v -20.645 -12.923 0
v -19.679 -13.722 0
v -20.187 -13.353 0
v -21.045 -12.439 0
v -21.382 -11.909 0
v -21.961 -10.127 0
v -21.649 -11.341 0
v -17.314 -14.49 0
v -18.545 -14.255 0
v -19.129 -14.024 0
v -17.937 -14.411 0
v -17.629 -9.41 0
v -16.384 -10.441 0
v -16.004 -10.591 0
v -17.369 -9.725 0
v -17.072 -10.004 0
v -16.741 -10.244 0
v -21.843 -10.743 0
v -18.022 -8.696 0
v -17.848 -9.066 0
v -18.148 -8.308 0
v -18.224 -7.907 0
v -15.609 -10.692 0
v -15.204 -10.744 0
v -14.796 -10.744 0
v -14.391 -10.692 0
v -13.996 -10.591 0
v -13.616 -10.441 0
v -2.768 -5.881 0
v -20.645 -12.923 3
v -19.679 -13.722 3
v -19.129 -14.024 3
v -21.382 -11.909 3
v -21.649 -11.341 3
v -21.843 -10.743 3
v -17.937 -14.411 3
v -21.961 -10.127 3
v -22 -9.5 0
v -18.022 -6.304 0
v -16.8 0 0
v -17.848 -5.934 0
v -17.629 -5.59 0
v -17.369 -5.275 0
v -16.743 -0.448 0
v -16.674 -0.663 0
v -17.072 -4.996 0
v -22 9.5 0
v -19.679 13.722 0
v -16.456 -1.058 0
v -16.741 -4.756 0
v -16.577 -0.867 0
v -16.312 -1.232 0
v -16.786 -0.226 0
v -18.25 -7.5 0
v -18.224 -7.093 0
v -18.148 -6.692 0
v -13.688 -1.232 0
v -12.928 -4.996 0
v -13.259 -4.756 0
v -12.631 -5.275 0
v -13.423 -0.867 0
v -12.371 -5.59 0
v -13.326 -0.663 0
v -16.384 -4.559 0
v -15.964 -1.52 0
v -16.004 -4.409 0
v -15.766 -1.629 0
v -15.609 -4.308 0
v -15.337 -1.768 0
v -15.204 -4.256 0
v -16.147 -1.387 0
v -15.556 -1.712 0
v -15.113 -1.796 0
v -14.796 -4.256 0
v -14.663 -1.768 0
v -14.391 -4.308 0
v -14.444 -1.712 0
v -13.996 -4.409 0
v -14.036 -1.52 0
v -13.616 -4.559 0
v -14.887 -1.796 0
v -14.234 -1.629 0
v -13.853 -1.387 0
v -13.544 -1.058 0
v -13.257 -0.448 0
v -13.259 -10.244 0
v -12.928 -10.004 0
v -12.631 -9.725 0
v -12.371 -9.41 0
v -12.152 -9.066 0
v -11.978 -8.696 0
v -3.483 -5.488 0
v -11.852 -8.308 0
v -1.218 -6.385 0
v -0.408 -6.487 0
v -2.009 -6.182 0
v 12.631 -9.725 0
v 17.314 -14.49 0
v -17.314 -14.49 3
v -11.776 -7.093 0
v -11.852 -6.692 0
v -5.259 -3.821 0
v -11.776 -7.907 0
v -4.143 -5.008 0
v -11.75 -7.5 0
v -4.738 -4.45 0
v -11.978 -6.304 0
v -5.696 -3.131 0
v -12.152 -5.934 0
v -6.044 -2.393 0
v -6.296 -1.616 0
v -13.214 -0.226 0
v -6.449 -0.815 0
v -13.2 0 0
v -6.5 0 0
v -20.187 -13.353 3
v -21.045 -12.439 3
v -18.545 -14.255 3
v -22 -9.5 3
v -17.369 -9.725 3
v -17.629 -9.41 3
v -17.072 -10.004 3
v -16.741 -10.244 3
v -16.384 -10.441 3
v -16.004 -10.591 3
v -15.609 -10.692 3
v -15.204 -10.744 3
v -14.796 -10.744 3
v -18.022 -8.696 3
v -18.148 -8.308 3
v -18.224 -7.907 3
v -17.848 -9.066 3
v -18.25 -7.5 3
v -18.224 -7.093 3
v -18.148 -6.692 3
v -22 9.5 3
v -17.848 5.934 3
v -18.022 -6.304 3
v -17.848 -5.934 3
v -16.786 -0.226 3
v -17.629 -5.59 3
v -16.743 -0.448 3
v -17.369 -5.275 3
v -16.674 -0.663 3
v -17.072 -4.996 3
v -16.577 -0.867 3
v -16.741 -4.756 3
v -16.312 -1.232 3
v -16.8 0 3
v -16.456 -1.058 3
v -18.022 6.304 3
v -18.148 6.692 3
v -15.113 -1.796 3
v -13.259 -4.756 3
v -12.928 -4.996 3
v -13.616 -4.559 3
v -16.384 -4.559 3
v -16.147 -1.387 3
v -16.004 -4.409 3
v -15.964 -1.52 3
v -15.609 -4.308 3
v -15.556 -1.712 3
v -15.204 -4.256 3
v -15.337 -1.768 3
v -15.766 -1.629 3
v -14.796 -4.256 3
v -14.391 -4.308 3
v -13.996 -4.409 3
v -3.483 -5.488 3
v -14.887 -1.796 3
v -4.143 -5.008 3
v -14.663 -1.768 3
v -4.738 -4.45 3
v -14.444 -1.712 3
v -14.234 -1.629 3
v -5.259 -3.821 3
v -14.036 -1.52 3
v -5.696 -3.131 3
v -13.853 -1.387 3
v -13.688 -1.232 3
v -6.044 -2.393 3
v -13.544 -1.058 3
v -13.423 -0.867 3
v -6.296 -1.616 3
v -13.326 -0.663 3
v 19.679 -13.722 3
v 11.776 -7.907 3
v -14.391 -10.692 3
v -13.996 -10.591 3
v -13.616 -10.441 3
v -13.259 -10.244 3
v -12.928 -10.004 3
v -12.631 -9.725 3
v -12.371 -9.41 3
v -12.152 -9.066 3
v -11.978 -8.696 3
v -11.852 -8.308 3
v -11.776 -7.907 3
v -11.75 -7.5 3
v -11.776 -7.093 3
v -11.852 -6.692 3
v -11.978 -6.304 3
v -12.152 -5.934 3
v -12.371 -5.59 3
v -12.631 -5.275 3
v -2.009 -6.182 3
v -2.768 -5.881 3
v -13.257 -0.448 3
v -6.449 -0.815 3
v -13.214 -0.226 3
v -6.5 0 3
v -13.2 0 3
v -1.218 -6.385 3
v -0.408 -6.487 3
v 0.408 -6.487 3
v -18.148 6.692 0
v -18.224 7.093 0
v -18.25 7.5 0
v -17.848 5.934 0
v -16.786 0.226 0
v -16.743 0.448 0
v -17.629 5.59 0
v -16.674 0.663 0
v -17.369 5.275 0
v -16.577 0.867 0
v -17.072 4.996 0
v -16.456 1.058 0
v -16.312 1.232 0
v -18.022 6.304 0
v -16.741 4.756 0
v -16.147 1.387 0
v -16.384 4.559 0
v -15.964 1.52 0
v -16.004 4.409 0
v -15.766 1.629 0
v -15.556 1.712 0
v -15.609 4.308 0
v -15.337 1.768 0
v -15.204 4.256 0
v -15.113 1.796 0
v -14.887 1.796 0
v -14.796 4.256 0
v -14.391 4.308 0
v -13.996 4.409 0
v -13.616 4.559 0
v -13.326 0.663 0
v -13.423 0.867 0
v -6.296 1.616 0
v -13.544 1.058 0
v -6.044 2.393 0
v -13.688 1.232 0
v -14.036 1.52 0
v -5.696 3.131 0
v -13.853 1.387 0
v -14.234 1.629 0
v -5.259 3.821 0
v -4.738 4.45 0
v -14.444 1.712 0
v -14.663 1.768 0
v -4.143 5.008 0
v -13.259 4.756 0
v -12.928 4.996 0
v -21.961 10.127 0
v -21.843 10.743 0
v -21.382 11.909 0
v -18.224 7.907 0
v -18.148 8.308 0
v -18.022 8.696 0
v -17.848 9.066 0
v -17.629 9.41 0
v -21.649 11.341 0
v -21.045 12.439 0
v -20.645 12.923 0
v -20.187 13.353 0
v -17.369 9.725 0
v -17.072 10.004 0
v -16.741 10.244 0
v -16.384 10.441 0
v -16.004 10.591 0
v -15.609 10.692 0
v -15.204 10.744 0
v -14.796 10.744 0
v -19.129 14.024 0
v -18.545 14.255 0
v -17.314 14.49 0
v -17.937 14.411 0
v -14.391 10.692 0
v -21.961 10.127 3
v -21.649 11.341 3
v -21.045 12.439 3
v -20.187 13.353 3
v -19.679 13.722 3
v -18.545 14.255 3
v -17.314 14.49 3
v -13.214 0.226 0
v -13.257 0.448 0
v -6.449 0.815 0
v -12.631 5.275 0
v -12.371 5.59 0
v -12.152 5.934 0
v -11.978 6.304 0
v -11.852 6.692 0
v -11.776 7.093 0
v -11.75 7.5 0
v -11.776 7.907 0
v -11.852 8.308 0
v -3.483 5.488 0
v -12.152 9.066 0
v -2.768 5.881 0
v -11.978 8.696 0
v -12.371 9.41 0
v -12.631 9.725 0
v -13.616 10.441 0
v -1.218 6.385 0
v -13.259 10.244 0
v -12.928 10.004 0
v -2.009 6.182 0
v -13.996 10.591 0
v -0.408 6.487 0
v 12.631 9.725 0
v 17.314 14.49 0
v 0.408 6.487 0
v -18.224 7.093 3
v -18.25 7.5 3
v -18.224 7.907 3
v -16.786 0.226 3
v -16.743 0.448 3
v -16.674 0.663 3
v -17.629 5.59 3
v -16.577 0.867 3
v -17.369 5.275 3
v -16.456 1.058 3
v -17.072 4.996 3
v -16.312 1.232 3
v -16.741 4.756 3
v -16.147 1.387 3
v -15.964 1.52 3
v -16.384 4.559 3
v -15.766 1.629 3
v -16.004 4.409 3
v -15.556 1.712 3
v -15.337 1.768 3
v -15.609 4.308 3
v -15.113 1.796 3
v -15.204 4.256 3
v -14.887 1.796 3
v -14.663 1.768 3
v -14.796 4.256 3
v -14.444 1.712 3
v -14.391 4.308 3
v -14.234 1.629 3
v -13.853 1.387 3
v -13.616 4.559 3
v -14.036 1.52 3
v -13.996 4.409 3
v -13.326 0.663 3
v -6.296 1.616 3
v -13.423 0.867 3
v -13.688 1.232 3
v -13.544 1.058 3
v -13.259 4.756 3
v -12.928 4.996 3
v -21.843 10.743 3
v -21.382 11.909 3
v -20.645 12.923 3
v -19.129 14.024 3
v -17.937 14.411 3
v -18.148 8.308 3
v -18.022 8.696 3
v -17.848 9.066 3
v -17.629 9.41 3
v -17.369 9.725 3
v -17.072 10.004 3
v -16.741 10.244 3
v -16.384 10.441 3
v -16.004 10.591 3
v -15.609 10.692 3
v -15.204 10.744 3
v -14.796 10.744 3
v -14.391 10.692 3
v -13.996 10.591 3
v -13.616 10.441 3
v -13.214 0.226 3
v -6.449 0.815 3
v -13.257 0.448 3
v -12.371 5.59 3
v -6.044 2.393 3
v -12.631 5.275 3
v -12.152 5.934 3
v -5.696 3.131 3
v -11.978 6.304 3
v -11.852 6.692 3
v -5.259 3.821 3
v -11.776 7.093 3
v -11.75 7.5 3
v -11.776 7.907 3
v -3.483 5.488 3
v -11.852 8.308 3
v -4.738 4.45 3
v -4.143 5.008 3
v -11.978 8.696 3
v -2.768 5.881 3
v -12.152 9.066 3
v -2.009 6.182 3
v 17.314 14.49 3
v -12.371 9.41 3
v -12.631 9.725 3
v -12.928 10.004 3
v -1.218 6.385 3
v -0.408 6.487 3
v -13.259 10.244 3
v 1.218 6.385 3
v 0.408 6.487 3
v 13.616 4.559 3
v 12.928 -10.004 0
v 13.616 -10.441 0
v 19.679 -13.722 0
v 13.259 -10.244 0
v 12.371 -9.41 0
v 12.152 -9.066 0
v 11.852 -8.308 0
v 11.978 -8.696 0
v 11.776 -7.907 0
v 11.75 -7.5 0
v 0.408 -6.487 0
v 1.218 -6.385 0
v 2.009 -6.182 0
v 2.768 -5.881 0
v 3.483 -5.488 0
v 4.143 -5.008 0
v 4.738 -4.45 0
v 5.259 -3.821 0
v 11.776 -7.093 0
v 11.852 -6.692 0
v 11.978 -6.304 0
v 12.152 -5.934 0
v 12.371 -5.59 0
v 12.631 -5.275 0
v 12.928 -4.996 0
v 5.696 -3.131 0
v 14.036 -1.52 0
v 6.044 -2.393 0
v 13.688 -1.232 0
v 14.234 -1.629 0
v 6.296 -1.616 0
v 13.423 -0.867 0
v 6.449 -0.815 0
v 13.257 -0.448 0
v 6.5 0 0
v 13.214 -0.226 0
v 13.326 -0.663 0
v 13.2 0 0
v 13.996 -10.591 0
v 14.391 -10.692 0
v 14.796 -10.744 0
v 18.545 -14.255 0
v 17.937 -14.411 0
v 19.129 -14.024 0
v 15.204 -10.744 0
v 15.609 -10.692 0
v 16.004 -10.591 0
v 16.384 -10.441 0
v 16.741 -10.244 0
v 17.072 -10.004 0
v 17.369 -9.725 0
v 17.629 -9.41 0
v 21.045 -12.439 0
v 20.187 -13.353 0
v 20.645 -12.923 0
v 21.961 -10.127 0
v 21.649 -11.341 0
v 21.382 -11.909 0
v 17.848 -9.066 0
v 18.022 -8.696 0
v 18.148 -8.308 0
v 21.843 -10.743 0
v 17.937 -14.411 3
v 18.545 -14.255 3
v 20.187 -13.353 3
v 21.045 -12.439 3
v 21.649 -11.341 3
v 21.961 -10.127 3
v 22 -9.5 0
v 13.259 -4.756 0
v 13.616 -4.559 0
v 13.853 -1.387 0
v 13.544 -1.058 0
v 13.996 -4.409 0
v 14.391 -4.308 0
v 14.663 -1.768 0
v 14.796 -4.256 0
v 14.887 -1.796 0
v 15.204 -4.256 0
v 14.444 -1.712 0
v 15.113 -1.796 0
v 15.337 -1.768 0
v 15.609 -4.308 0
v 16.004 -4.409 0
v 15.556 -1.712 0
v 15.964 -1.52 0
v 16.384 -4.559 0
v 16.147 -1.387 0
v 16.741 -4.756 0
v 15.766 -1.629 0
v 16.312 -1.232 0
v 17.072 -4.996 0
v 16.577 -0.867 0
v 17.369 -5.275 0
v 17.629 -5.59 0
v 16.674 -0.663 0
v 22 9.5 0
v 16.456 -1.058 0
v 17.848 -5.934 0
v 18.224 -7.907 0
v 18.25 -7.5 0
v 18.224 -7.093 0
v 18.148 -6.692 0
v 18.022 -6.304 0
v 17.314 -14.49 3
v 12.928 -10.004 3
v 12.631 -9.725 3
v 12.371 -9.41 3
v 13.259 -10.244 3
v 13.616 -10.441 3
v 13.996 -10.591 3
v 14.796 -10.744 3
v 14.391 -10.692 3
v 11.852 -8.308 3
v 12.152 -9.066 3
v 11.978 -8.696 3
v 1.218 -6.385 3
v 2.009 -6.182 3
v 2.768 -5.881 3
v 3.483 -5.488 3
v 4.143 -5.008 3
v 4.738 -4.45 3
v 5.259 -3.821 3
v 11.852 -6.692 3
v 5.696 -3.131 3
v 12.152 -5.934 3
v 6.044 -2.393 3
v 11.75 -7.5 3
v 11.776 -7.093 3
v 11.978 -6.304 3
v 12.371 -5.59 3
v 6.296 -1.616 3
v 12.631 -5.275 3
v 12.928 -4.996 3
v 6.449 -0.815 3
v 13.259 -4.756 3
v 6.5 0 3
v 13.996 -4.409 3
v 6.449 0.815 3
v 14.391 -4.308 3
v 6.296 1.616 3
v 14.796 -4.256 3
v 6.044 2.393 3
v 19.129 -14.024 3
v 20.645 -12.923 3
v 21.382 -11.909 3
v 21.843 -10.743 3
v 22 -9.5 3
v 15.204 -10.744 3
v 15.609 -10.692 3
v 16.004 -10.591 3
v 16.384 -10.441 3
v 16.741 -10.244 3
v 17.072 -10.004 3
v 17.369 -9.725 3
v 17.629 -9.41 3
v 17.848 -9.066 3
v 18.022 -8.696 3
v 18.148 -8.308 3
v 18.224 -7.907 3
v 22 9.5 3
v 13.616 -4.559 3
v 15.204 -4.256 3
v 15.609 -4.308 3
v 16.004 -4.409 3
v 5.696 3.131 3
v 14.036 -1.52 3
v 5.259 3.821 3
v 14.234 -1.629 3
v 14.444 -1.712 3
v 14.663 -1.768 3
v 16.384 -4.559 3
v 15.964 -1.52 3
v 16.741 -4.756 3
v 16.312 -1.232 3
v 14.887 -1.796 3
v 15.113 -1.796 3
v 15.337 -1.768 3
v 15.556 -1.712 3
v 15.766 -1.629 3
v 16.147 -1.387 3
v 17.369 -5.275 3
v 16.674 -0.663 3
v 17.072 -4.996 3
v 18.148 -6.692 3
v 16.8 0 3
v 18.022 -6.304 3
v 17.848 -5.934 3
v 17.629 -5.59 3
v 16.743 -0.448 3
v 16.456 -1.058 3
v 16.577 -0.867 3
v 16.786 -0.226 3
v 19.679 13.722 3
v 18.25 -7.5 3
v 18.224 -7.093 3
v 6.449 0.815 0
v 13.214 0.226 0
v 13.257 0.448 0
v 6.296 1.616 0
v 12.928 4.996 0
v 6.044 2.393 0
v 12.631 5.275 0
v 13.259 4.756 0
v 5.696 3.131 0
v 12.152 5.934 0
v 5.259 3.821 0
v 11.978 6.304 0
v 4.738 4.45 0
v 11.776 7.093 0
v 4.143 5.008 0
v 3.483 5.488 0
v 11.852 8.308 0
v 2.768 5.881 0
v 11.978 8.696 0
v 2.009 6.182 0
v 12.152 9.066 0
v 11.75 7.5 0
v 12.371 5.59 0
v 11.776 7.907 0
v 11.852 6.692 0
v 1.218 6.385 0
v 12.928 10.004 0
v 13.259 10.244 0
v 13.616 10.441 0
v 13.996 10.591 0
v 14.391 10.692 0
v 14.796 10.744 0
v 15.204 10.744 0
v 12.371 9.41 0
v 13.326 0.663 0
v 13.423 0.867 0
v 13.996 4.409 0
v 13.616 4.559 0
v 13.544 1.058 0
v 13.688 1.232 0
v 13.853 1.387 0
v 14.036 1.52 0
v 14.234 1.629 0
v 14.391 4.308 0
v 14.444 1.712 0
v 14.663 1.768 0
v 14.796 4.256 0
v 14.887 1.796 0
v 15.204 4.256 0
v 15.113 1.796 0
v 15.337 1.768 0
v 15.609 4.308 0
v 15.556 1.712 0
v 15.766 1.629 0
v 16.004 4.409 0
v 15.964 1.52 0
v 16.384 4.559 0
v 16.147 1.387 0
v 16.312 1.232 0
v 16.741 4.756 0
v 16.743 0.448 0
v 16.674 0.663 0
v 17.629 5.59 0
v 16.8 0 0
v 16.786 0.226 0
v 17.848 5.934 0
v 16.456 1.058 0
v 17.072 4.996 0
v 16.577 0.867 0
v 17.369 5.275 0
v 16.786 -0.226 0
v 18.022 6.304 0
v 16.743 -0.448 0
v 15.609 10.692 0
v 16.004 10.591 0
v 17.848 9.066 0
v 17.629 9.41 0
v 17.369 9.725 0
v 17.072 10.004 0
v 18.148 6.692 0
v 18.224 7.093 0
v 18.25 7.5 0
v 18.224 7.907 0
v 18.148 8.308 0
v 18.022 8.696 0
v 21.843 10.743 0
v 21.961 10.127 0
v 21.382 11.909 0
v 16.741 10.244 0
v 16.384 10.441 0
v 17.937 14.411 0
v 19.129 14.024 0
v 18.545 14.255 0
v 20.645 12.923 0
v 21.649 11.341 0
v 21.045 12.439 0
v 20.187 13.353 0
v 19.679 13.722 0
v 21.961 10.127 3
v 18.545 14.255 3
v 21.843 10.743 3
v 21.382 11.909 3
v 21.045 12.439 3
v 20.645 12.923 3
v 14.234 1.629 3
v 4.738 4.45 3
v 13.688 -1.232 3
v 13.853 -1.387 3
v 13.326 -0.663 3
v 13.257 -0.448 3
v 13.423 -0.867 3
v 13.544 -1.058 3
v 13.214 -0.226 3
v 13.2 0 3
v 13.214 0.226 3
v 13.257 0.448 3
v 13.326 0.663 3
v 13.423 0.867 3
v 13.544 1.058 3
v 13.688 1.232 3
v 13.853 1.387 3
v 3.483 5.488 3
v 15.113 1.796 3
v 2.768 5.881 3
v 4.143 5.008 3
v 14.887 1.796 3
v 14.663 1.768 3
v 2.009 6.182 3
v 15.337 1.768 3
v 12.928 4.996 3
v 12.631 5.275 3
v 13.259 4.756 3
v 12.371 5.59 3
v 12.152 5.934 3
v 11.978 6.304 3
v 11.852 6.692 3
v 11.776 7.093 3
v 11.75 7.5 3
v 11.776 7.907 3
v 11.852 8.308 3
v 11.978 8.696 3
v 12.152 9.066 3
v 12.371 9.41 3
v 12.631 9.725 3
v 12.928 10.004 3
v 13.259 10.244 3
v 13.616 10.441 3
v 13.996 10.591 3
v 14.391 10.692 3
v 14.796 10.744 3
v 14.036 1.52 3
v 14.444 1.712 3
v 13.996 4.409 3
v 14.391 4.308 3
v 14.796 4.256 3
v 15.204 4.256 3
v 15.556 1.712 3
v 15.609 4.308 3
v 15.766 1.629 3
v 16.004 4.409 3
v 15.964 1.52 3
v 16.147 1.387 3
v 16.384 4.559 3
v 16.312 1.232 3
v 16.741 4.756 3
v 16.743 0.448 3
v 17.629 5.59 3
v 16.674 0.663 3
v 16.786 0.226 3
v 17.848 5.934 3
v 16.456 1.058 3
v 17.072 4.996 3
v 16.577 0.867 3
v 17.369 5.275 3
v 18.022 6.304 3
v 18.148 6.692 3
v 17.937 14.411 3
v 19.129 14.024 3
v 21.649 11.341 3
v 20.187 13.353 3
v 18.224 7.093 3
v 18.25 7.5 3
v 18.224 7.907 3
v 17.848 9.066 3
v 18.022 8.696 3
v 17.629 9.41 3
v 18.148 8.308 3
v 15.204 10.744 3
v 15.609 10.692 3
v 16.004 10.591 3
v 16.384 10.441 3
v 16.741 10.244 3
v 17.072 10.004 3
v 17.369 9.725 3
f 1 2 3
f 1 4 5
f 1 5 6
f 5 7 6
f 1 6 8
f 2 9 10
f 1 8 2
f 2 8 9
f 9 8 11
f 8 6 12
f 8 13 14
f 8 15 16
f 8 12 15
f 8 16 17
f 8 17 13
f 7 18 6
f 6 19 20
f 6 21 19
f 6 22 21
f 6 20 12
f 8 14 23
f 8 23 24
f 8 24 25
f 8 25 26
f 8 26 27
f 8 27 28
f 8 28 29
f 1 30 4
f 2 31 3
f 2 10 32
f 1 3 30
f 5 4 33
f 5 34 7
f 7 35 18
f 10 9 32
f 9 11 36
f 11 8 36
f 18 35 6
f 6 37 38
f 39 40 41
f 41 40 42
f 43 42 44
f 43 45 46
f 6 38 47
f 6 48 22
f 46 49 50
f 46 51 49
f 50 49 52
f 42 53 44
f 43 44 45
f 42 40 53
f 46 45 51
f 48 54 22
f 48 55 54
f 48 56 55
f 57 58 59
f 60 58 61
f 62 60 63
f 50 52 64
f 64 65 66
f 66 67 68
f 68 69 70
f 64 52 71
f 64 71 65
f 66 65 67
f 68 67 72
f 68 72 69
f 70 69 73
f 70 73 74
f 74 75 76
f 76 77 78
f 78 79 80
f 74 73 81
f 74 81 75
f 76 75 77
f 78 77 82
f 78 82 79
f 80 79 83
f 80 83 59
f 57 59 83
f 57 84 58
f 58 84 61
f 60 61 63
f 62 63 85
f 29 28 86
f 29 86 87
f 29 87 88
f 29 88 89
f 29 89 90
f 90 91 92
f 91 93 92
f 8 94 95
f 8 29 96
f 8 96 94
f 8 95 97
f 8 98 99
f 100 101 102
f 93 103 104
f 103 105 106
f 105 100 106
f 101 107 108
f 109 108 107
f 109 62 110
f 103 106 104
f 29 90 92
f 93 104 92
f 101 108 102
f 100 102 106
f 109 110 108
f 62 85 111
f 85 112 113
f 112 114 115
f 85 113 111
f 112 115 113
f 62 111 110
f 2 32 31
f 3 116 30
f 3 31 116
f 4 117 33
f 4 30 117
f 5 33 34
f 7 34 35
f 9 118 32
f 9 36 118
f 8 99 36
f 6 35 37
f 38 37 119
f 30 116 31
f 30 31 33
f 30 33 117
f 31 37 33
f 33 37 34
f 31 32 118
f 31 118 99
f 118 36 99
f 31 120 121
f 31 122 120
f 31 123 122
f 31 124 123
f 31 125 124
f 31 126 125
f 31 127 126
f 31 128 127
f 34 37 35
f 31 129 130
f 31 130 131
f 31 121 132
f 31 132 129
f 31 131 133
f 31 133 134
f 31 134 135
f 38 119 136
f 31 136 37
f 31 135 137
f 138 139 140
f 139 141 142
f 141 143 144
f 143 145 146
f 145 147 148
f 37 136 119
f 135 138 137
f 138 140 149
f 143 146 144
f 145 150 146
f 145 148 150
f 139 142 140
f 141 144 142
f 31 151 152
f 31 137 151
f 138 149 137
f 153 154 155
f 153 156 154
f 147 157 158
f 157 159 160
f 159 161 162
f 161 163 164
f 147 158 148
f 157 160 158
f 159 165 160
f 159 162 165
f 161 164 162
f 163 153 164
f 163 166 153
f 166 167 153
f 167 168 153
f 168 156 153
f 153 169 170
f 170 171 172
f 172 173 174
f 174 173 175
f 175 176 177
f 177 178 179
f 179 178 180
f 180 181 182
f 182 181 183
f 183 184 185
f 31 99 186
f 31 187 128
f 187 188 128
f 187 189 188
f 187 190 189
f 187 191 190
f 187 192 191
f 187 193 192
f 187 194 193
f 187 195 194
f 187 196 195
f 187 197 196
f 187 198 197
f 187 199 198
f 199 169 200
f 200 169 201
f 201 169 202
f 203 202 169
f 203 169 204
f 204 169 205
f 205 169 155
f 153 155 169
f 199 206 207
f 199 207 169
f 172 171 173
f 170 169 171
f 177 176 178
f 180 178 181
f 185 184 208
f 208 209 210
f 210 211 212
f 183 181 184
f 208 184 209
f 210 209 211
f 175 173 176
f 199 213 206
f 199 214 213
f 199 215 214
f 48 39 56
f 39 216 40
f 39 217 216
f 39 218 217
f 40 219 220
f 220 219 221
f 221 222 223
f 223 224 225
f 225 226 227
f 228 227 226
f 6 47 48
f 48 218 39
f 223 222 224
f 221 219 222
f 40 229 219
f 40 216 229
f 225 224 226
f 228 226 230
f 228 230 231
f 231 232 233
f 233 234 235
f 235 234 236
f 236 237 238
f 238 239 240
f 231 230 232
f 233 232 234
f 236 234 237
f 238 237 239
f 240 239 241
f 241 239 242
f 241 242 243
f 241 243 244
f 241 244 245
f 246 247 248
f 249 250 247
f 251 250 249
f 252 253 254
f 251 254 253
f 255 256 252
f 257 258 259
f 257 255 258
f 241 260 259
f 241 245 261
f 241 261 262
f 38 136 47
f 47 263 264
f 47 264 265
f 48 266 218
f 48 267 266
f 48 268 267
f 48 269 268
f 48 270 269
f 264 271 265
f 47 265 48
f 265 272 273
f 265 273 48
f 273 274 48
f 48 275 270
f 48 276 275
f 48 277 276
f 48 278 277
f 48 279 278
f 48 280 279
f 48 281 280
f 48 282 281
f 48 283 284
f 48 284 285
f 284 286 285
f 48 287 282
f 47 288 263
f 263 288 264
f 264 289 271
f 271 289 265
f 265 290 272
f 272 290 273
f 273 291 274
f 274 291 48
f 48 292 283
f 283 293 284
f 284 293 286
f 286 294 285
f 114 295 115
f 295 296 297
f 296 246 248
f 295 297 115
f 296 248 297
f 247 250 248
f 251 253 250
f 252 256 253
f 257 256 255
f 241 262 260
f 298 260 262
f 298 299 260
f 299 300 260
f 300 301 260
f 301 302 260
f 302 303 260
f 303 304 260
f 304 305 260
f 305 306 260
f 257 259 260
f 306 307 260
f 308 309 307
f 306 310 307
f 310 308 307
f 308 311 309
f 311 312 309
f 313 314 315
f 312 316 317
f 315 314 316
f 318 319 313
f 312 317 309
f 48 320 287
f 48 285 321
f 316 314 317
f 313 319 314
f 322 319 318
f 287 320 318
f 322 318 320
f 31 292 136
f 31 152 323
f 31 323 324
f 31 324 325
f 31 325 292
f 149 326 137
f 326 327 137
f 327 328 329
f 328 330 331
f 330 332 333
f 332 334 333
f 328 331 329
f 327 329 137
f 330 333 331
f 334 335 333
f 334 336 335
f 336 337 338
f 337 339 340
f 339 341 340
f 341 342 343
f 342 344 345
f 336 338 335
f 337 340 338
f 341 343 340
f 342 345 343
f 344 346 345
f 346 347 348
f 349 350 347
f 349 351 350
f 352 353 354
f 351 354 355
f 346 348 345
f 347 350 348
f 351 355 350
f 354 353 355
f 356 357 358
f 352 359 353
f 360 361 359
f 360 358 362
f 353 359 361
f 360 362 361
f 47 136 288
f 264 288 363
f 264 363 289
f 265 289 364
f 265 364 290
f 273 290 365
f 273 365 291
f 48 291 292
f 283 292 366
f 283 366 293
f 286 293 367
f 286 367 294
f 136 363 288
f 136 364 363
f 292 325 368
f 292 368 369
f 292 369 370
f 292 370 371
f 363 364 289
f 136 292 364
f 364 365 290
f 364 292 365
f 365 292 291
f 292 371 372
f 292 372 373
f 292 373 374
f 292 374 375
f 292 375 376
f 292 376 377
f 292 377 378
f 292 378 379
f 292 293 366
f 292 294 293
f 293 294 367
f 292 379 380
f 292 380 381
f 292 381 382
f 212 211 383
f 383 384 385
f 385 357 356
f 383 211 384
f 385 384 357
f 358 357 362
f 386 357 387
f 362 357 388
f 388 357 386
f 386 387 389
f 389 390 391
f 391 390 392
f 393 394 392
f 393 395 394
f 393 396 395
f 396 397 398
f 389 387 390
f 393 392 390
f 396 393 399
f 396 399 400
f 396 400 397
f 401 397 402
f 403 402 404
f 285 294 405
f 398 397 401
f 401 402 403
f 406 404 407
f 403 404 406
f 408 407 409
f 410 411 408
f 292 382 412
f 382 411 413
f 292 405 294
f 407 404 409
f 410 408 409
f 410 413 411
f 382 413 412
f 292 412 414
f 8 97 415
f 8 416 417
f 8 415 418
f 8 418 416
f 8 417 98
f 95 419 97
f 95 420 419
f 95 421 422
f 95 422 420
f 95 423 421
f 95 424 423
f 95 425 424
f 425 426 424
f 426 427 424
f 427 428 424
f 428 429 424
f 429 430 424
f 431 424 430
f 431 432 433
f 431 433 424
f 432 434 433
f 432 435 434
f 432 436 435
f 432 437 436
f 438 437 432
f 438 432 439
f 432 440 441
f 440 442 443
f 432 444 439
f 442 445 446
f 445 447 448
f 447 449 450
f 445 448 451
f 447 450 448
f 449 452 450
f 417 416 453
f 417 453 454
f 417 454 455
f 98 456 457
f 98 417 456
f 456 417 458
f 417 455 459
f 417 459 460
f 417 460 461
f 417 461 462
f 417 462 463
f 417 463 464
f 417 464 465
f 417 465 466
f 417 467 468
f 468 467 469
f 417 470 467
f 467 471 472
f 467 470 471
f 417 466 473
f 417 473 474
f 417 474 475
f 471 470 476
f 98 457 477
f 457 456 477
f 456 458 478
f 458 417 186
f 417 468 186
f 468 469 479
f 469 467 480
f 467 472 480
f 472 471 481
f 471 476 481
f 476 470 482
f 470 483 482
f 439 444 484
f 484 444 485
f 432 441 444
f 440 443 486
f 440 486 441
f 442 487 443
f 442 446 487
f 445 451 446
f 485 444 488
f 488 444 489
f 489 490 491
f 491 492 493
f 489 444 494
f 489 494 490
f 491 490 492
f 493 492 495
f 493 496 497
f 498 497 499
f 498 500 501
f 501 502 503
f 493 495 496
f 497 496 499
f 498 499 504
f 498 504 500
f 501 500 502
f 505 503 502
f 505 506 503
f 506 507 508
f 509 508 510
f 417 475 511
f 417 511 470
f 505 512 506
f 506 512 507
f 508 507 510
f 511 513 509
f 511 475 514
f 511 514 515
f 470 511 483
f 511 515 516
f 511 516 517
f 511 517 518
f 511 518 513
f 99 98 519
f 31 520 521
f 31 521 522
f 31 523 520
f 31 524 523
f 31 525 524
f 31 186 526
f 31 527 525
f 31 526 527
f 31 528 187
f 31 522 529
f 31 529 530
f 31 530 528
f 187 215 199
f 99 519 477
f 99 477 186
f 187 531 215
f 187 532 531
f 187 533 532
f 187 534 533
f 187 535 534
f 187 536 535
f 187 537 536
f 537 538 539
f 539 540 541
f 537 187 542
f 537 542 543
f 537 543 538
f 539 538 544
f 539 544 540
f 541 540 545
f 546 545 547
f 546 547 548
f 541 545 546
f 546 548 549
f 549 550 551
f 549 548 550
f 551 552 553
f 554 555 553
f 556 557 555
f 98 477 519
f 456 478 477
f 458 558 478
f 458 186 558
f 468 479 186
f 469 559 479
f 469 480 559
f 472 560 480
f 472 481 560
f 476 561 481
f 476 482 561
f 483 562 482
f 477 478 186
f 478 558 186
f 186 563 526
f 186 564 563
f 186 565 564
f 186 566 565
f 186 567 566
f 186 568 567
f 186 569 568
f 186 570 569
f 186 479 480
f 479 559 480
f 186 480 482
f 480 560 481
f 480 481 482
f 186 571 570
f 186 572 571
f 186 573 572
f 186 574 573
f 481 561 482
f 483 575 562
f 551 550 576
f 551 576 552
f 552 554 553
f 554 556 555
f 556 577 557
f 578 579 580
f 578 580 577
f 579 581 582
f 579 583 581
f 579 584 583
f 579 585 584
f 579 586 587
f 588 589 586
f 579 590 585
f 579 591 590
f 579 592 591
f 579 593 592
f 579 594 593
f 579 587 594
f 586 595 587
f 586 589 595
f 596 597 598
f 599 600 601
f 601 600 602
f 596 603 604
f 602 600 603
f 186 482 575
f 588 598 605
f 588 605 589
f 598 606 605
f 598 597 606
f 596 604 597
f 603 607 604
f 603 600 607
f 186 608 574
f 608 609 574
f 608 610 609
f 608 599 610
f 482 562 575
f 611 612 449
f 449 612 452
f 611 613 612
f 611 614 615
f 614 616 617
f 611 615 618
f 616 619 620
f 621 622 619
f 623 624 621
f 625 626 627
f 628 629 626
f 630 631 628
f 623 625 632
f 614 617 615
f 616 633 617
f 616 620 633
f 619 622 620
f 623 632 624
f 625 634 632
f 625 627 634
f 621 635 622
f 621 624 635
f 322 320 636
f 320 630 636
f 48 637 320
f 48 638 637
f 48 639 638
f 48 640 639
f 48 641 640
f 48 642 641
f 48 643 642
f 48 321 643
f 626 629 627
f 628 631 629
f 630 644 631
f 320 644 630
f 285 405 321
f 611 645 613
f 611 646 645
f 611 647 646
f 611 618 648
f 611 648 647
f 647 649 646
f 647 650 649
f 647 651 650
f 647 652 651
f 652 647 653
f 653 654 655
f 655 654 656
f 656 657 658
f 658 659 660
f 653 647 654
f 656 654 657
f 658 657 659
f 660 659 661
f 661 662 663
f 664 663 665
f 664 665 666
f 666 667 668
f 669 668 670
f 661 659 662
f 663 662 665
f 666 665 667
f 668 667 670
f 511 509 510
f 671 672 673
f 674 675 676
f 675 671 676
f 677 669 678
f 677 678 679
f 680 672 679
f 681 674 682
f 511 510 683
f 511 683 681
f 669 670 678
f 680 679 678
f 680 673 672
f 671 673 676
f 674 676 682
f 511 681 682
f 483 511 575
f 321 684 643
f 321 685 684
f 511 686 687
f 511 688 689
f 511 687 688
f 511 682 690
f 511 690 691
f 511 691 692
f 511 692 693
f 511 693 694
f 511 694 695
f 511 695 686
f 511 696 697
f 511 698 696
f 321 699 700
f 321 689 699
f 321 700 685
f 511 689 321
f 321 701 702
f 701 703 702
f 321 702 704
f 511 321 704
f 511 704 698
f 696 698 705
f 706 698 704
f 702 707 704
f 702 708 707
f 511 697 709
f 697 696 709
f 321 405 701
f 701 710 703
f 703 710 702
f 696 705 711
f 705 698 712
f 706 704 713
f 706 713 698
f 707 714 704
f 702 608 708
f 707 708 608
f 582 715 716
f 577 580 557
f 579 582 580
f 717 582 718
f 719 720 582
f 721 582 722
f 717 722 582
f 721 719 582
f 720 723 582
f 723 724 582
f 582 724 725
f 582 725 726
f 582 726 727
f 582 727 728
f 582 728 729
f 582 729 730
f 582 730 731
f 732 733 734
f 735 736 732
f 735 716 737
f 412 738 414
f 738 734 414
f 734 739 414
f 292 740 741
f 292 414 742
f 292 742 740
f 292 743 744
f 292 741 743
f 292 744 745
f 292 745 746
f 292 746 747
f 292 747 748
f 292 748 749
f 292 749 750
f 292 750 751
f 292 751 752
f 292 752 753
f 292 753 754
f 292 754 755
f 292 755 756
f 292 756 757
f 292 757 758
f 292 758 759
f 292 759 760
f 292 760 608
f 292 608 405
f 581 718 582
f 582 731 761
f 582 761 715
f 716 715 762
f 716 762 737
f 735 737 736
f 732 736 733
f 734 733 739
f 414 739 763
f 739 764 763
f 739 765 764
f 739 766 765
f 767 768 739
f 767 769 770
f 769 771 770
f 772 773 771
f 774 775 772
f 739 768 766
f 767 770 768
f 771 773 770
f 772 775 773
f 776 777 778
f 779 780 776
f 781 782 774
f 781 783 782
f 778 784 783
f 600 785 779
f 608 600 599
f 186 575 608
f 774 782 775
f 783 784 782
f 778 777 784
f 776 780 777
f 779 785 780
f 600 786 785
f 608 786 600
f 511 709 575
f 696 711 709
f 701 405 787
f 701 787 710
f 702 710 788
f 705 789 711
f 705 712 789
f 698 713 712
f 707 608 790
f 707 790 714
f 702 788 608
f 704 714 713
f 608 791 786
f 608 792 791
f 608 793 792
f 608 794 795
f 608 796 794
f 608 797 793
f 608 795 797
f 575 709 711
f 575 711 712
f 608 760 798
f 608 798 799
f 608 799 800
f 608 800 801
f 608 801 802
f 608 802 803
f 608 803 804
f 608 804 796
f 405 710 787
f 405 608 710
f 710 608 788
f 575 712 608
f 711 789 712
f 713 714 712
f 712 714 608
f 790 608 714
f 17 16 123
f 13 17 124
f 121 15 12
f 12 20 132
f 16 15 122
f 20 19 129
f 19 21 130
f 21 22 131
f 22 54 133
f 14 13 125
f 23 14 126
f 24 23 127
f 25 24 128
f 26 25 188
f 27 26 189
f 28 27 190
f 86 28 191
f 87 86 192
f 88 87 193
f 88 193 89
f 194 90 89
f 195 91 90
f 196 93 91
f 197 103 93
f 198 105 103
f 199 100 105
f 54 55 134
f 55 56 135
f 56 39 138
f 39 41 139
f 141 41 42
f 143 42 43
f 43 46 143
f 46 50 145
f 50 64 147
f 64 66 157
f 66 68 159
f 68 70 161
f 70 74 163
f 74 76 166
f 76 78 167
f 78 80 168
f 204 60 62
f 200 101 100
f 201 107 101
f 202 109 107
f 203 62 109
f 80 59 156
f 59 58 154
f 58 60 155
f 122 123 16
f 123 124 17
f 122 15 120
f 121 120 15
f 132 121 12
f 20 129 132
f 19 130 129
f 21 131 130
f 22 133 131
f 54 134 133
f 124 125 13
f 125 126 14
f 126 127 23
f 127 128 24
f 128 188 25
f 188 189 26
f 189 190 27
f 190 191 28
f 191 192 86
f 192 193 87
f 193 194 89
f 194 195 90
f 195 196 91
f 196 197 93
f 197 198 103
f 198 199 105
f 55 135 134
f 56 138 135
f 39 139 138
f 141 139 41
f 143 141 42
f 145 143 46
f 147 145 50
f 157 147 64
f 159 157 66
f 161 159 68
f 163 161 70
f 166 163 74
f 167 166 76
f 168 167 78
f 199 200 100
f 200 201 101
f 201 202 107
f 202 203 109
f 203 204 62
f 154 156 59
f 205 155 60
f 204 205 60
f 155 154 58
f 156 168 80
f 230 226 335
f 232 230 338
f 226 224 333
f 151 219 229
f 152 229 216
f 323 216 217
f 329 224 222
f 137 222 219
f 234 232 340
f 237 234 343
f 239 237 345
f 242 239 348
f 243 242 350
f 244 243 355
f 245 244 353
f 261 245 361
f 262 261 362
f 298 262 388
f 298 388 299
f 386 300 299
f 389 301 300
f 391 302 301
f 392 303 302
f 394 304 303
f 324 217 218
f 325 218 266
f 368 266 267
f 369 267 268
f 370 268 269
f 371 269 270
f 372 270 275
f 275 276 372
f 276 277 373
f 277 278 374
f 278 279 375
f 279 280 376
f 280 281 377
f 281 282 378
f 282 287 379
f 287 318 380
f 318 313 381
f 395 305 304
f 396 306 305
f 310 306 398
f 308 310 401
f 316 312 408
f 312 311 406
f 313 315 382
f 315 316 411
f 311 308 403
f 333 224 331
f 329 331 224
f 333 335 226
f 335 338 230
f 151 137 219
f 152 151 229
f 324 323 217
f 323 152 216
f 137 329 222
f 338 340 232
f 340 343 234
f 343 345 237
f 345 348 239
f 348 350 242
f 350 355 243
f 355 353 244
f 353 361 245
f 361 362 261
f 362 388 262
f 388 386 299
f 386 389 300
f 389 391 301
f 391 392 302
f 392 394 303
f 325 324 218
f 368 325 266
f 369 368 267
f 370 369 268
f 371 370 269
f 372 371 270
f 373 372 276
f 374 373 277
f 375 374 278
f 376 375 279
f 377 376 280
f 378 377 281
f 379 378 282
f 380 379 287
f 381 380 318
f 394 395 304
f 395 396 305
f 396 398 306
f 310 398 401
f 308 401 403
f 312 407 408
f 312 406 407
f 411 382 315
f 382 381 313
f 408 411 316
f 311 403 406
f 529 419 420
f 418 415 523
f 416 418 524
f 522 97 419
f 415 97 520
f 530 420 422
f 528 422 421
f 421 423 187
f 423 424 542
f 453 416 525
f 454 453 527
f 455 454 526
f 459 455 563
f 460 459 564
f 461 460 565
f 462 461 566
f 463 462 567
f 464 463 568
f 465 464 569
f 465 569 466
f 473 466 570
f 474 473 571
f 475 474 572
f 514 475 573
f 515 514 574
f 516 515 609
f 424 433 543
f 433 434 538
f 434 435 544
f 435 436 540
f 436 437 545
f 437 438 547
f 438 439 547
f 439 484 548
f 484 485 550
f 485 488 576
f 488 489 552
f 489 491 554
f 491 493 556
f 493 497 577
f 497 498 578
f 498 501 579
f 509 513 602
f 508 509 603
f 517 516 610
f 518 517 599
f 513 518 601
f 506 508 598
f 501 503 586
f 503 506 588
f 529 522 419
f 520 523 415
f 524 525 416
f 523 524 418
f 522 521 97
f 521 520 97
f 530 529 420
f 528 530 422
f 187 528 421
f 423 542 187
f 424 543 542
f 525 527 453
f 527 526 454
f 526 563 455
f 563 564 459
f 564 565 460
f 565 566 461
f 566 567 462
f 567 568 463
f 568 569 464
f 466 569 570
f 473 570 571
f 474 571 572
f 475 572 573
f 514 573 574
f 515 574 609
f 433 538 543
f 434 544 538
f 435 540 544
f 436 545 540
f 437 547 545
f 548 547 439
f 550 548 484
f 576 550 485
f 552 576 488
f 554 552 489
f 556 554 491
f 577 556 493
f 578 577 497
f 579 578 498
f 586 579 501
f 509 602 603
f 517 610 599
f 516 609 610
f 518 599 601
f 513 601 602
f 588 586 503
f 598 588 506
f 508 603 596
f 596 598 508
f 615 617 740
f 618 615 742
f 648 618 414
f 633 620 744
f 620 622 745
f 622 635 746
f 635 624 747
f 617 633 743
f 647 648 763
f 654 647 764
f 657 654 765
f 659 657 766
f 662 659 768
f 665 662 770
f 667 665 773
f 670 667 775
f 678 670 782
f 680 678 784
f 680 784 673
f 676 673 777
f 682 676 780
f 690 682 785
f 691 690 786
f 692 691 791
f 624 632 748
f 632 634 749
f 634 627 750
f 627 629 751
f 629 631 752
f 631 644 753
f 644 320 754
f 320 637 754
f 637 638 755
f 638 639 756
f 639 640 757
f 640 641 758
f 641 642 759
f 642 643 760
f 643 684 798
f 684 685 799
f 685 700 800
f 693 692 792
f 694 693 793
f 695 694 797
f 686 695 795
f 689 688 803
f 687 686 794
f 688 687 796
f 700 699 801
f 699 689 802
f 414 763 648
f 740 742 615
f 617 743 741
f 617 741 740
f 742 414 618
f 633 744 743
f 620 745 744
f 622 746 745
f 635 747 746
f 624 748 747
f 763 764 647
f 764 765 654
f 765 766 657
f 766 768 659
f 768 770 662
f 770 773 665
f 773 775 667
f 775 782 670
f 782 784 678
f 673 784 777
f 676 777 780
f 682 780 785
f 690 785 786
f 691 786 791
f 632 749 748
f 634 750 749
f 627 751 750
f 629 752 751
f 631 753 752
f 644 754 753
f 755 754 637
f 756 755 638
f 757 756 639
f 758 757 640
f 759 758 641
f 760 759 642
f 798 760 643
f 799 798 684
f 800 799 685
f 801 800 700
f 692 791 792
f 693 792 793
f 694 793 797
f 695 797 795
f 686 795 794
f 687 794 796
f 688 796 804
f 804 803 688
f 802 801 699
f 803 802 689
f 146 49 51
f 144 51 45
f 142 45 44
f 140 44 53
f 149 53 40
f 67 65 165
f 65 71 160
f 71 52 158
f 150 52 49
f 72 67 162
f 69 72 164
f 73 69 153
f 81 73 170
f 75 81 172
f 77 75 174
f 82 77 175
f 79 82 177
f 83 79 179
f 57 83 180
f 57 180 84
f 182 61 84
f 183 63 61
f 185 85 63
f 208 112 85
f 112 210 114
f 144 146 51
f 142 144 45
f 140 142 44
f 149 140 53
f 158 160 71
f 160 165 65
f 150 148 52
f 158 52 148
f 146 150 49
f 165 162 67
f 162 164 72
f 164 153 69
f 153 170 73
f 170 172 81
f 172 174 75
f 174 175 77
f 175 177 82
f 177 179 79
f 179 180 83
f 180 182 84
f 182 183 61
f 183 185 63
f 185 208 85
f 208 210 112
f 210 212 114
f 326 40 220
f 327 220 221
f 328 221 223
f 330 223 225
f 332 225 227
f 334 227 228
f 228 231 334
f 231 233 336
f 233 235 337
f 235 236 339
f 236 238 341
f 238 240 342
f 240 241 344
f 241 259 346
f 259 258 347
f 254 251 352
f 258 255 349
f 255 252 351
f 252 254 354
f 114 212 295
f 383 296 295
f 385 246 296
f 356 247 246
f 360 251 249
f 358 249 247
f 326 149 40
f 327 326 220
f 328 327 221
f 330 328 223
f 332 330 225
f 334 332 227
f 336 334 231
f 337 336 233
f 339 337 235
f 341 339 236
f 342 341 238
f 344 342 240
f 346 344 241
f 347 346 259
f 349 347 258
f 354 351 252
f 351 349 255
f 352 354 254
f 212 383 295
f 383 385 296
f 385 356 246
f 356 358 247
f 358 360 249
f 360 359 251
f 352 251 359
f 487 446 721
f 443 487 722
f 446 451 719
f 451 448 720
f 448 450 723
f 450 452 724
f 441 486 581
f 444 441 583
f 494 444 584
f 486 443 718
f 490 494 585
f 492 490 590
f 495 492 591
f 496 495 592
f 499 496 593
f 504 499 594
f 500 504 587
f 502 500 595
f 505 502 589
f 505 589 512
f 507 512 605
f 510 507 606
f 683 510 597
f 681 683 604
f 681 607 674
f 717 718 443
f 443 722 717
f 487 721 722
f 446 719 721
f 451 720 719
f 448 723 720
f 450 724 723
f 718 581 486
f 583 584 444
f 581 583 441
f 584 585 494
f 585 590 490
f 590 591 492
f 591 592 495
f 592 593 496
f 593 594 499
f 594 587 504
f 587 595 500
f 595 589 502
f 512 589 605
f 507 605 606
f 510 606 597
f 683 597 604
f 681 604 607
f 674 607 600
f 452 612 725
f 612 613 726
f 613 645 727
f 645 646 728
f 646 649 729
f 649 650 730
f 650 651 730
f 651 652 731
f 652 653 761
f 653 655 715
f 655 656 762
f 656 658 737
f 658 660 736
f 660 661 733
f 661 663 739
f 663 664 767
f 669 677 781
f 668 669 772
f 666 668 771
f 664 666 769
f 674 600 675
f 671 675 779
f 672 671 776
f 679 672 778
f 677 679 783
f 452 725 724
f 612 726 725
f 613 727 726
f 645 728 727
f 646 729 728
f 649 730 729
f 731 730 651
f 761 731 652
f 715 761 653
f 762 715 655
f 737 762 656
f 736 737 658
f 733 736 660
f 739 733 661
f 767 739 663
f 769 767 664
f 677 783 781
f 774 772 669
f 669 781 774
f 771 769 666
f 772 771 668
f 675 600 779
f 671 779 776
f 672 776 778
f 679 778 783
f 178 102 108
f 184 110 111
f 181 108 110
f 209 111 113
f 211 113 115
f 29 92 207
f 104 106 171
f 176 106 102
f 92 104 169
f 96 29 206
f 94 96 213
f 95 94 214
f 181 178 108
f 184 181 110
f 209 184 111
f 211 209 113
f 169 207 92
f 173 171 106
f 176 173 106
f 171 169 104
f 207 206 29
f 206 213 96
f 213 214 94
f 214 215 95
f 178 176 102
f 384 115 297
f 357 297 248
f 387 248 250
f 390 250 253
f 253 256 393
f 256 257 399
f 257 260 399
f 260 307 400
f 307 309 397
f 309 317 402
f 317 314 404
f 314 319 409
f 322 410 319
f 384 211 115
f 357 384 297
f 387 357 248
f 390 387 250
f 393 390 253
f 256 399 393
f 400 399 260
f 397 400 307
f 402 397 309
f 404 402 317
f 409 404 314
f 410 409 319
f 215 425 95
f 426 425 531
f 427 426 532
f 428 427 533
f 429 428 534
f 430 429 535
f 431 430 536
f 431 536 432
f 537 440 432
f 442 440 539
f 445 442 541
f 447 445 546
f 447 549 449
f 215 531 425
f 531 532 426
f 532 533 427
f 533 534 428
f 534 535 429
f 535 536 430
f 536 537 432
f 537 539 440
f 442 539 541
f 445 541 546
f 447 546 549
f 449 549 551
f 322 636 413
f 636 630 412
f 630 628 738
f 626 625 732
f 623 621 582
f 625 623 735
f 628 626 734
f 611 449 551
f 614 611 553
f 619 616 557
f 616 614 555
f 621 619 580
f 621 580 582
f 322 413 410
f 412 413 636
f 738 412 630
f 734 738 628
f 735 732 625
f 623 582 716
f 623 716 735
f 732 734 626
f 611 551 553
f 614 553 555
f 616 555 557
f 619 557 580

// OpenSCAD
$fn = 50;

difference() {
	union() {
		hull() {
			translate(v = [-17.0, 9.5, 0]) {
				cylinder(h = 3, r = 5);
			}
			translate(v = [17.0, 9.5, 0]) {
				cylinder(h = 3, r = 5);
			}
			translate(v = [-17.0, -9.5, 0]) {
				cylinder(h = 3, r = 5);
			}
			translate(v = [17.0, -9.5, 0]) {
				cylinder(h = 3, r = 5);
			}
		}
	}
	union() {
		translate(v = [-15.0, -7.5, 0]) {
			cylinder(h = 3, r = 3.25);
		}
		translate(v = [-15.0, 7.5, 0]) {
			cylinder(h = 3, r = 3.25);
		}
		translate(v = [15.0, -7.5, 0]) {
			cylinder(h = 3, r = 3.25);
		}
		translate(v = [15.0, 7.5, 0]) {
			cylinder(h = 3, r = 3.25);
		}
		translate(v = [-15.0, 0.0, 0]) {
			cylinder(h = 3, r = 1.8);
		}
		translate(v = [15.0, 0.0, 0]) {
			cylinder(h = 3, r = 1.8);
		}
		cylinder(h = 3, r = 6.5);
	}
}
